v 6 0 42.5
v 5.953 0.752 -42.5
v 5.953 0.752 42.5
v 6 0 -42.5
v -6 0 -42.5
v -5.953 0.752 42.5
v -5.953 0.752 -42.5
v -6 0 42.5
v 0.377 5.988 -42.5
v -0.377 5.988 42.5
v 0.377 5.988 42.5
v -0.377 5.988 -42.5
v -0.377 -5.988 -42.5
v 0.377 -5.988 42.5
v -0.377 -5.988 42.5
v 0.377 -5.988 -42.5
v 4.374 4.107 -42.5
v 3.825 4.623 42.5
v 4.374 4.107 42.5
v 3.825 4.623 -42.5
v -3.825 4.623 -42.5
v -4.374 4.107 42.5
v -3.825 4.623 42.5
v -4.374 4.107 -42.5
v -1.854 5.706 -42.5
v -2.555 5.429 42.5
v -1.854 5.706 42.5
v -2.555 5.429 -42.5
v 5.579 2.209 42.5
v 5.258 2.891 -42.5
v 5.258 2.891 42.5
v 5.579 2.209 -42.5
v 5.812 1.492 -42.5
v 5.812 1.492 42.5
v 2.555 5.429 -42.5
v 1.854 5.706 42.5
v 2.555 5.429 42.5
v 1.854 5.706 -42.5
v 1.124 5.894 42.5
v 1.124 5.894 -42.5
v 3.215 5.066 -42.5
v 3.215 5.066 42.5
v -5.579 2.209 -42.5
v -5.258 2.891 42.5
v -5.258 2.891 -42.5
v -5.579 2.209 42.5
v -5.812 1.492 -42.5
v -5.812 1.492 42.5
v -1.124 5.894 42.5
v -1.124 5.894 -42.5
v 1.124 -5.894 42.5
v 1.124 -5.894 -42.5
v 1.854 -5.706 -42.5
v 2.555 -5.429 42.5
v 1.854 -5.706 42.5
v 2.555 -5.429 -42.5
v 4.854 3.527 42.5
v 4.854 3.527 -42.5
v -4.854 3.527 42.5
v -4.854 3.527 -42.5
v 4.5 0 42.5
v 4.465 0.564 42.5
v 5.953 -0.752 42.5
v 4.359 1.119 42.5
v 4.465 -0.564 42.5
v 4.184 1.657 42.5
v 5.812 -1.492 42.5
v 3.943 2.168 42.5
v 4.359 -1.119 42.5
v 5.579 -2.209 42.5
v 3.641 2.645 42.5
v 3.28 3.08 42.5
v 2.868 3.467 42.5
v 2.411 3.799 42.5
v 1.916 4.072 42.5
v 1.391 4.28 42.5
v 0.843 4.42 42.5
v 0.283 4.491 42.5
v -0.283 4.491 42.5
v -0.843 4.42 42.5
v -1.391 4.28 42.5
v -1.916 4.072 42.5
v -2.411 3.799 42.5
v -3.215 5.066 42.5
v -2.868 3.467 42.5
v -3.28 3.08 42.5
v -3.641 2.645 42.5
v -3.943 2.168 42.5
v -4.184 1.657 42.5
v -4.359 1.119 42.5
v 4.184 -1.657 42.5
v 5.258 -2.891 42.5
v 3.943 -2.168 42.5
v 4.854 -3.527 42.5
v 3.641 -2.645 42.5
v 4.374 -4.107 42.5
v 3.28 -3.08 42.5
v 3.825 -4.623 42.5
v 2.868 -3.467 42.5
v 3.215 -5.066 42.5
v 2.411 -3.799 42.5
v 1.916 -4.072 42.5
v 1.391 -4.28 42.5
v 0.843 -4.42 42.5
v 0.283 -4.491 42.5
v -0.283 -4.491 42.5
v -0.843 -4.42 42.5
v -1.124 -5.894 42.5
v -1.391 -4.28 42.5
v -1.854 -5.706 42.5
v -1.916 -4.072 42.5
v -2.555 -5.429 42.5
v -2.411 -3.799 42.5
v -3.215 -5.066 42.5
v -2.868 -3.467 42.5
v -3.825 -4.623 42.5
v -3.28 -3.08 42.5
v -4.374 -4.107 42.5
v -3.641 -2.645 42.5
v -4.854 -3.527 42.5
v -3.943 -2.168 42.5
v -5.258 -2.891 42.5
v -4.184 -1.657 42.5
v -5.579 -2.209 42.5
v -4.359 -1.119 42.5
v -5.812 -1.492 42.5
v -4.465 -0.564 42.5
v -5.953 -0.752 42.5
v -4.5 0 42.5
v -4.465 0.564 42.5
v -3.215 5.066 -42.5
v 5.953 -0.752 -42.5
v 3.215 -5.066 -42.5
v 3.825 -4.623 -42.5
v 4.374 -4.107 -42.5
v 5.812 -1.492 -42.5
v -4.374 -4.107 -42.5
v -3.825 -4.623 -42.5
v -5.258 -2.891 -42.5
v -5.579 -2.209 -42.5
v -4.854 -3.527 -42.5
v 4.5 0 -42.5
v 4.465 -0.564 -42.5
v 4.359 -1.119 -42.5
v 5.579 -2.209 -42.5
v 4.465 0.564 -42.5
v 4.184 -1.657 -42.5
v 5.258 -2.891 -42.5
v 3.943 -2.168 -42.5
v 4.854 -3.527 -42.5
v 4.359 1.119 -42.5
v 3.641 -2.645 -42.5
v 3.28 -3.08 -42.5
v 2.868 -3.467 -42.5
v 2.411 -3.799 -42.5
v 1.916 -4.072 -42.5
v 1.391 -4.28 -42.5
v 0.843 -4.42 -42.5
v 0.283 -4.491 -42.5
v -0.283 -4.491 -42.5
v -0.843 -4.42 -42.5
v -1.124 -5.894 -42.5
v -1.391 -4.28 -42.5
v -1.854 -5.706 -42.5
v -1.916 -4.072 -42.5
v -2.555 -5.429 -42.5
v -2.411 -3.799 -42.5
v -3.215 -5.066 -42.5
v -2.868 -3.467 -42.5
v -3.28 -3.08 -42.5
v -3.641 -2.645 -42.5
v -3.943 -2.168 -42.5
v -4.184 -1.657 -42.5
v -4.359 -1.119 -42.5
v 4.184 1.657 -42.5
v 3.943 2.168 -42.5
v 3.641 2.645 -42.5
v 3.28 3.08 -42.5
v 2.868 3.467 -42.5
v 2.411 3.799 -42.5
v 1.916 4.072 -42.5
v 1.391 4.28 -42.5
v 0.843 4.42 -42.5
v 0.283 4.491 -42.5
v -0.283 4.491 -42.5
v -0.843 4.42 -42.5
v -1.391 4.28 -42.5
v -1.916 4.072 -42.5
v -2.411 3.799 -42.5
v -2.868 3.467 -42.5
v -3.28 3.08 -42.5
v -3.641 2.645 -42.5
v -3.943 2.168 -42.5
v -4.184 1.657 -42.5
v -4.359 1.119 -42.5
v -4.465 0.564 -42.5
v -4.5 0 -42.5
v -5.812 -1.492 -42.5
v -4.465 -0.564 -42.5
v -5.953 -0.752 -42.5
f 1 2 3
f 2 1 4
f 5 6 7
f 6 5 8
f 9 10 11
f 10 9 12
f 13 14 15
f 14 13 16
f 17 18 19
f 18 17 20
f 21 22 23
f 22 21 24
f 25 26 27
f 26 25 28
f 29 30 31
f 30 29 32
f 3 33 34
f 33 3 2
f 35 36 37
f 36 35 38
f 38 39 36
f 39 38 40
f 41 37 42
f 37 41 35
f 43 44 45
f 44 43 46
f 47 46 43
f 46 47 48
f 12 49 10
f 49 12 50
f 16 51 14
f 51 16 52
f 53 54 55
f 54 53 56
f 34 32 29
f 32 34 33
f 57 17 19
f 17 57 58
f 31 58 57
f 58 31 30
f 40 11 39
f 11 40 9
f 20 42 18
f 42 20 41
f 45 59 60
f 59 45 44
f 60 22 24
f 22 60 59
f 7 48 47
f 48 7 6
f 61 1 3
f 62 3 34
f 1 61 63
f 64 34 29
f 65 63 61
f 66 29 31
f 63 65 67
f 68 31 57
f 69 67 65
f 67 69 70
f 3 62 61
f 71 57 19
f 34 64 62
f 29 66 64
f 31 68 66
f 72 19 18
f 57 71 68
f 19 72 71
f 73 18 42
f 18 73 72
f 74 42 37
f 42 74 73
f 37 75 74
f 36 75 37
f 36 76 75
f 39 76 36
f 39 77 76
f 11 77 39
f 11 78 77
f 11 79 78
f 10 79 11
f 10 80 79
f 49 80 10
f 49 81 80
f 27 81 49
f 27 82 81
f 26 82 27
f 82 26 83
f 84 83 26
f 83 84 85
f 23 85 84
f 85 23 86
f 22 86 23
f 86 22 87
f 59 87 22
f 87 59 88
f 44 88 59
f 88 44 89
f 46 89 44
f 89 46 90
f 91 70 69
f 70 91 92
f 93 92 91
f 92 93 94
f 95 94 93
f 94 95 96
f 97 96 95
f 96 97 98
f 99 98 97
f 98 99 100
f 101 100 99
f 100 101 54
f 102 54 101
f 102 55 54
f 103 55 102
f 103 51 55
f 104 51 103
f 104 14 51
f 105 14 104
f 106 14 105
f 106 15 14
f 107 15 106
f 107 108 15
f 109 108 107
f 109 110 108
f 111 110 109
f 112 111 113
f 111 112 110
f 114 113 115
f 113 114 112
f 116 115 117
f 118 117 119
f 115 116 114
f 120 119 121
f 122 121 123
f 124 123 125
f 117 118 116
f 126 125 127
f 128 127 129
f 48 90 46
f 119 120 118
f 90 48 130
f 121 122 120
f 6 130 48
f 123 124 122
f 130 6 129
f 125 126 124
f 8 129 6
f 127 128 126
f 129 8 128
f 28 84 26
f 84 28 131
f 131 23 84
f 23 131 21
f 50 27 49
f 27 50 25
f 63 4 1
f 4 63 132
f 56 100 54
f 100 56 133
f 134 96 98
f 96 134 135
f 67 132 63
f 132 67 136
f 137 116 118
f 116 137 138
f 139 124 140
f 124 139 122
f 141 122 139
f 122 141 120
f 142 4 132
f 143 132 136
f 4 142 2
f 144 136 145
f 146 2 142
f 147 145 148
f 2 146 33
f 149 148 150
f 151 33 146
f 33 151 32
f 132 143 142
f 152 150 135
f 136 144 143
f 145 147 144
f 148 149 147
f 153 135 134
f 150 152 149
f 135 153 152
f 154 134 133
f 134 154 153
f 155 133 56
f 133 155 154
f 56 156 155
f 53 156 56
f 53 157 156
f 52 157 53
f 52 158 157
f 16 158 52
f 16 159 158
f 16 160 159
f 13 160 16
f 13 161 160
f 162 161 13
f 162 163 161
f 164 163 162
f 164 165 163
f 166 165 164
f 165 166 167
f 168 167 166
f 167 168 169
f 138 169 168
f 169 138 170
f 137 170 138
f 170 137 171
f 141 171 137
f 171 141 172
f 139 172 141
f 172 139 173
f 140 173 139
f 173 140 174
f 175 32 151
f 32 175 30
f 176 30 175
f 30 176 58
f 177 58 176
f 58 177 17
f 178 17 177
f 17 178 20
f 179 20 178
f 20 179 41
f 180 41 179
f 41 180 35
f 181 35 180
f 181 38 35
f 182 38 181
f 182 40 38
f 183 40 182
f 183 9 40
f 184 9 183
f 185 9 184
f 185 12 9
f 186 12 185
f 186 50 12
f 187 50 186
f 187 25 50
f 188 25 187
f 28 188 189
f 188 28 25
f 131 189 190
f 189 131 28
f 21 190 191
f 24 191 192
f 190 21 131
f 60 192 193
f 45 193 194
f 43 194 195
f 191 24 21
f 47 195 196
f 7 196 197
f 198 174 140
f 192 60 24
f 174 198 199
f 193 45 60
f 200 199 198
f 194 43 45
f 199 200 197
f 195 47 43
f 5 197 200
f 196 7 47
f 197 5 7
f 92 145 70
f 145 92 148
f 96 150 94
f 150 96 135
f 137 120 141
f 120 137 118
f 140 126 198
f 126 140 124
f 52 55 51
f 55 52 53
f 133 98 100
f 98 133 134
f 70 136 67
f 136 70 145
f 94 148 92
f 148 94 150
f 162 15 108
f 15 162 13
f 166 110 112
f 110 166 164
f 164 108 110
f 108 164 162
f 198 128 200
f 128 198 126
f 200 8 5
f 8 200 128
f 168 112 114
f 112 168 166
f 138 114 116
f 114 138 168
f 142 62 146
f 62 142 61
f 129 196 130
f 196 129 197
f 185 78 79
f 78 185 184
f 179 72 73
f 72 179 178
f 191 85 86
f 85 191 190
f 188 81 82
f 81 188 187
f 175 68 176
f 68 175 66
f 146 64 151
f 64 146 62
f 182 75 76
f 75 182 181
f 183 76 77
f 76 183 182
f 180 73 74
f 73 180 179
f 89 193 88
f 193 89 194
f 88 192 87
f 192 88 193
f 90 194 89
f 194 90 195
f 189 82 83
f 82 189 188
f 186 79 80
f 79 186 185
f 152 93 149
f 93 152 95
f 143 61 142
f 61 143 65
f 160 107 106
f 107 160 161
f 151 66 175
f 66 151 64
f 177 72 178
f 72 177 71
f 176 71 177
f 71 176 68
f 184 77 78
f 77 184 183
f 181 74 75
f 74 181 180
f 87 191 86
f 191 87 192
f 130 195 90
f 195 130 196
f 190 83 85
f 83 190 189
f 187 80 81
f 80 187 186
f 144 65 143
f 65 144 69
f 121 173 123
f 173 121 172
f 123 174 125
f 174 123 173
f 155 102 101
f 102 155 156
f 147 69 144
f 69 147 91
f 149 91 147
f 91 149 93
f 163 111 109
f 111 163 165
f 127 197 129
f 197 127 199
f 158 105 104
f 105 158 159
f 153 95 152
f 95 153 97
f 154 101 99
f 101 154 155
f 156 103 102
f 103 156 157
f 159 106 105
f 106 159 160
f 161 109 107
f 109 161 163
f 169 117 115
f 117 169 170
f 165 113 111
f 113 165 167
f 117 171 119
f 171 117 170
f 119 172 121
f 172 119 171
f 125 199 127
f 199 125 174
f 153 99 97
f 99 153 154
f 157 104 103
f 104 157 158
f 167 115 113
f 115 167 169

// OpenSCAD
$fn = 50;


difference() {
	union() {
		translate(v = [0, 0, -42.5000000000]) {
			cylinder(h = 85, r = 6.0000000000);
		}
	}
	union() {
		translate(v = [0, 0, -100.0000000000]) {
			cylinder(h = 200, r = 4.5000000000);
		}
	}
}
